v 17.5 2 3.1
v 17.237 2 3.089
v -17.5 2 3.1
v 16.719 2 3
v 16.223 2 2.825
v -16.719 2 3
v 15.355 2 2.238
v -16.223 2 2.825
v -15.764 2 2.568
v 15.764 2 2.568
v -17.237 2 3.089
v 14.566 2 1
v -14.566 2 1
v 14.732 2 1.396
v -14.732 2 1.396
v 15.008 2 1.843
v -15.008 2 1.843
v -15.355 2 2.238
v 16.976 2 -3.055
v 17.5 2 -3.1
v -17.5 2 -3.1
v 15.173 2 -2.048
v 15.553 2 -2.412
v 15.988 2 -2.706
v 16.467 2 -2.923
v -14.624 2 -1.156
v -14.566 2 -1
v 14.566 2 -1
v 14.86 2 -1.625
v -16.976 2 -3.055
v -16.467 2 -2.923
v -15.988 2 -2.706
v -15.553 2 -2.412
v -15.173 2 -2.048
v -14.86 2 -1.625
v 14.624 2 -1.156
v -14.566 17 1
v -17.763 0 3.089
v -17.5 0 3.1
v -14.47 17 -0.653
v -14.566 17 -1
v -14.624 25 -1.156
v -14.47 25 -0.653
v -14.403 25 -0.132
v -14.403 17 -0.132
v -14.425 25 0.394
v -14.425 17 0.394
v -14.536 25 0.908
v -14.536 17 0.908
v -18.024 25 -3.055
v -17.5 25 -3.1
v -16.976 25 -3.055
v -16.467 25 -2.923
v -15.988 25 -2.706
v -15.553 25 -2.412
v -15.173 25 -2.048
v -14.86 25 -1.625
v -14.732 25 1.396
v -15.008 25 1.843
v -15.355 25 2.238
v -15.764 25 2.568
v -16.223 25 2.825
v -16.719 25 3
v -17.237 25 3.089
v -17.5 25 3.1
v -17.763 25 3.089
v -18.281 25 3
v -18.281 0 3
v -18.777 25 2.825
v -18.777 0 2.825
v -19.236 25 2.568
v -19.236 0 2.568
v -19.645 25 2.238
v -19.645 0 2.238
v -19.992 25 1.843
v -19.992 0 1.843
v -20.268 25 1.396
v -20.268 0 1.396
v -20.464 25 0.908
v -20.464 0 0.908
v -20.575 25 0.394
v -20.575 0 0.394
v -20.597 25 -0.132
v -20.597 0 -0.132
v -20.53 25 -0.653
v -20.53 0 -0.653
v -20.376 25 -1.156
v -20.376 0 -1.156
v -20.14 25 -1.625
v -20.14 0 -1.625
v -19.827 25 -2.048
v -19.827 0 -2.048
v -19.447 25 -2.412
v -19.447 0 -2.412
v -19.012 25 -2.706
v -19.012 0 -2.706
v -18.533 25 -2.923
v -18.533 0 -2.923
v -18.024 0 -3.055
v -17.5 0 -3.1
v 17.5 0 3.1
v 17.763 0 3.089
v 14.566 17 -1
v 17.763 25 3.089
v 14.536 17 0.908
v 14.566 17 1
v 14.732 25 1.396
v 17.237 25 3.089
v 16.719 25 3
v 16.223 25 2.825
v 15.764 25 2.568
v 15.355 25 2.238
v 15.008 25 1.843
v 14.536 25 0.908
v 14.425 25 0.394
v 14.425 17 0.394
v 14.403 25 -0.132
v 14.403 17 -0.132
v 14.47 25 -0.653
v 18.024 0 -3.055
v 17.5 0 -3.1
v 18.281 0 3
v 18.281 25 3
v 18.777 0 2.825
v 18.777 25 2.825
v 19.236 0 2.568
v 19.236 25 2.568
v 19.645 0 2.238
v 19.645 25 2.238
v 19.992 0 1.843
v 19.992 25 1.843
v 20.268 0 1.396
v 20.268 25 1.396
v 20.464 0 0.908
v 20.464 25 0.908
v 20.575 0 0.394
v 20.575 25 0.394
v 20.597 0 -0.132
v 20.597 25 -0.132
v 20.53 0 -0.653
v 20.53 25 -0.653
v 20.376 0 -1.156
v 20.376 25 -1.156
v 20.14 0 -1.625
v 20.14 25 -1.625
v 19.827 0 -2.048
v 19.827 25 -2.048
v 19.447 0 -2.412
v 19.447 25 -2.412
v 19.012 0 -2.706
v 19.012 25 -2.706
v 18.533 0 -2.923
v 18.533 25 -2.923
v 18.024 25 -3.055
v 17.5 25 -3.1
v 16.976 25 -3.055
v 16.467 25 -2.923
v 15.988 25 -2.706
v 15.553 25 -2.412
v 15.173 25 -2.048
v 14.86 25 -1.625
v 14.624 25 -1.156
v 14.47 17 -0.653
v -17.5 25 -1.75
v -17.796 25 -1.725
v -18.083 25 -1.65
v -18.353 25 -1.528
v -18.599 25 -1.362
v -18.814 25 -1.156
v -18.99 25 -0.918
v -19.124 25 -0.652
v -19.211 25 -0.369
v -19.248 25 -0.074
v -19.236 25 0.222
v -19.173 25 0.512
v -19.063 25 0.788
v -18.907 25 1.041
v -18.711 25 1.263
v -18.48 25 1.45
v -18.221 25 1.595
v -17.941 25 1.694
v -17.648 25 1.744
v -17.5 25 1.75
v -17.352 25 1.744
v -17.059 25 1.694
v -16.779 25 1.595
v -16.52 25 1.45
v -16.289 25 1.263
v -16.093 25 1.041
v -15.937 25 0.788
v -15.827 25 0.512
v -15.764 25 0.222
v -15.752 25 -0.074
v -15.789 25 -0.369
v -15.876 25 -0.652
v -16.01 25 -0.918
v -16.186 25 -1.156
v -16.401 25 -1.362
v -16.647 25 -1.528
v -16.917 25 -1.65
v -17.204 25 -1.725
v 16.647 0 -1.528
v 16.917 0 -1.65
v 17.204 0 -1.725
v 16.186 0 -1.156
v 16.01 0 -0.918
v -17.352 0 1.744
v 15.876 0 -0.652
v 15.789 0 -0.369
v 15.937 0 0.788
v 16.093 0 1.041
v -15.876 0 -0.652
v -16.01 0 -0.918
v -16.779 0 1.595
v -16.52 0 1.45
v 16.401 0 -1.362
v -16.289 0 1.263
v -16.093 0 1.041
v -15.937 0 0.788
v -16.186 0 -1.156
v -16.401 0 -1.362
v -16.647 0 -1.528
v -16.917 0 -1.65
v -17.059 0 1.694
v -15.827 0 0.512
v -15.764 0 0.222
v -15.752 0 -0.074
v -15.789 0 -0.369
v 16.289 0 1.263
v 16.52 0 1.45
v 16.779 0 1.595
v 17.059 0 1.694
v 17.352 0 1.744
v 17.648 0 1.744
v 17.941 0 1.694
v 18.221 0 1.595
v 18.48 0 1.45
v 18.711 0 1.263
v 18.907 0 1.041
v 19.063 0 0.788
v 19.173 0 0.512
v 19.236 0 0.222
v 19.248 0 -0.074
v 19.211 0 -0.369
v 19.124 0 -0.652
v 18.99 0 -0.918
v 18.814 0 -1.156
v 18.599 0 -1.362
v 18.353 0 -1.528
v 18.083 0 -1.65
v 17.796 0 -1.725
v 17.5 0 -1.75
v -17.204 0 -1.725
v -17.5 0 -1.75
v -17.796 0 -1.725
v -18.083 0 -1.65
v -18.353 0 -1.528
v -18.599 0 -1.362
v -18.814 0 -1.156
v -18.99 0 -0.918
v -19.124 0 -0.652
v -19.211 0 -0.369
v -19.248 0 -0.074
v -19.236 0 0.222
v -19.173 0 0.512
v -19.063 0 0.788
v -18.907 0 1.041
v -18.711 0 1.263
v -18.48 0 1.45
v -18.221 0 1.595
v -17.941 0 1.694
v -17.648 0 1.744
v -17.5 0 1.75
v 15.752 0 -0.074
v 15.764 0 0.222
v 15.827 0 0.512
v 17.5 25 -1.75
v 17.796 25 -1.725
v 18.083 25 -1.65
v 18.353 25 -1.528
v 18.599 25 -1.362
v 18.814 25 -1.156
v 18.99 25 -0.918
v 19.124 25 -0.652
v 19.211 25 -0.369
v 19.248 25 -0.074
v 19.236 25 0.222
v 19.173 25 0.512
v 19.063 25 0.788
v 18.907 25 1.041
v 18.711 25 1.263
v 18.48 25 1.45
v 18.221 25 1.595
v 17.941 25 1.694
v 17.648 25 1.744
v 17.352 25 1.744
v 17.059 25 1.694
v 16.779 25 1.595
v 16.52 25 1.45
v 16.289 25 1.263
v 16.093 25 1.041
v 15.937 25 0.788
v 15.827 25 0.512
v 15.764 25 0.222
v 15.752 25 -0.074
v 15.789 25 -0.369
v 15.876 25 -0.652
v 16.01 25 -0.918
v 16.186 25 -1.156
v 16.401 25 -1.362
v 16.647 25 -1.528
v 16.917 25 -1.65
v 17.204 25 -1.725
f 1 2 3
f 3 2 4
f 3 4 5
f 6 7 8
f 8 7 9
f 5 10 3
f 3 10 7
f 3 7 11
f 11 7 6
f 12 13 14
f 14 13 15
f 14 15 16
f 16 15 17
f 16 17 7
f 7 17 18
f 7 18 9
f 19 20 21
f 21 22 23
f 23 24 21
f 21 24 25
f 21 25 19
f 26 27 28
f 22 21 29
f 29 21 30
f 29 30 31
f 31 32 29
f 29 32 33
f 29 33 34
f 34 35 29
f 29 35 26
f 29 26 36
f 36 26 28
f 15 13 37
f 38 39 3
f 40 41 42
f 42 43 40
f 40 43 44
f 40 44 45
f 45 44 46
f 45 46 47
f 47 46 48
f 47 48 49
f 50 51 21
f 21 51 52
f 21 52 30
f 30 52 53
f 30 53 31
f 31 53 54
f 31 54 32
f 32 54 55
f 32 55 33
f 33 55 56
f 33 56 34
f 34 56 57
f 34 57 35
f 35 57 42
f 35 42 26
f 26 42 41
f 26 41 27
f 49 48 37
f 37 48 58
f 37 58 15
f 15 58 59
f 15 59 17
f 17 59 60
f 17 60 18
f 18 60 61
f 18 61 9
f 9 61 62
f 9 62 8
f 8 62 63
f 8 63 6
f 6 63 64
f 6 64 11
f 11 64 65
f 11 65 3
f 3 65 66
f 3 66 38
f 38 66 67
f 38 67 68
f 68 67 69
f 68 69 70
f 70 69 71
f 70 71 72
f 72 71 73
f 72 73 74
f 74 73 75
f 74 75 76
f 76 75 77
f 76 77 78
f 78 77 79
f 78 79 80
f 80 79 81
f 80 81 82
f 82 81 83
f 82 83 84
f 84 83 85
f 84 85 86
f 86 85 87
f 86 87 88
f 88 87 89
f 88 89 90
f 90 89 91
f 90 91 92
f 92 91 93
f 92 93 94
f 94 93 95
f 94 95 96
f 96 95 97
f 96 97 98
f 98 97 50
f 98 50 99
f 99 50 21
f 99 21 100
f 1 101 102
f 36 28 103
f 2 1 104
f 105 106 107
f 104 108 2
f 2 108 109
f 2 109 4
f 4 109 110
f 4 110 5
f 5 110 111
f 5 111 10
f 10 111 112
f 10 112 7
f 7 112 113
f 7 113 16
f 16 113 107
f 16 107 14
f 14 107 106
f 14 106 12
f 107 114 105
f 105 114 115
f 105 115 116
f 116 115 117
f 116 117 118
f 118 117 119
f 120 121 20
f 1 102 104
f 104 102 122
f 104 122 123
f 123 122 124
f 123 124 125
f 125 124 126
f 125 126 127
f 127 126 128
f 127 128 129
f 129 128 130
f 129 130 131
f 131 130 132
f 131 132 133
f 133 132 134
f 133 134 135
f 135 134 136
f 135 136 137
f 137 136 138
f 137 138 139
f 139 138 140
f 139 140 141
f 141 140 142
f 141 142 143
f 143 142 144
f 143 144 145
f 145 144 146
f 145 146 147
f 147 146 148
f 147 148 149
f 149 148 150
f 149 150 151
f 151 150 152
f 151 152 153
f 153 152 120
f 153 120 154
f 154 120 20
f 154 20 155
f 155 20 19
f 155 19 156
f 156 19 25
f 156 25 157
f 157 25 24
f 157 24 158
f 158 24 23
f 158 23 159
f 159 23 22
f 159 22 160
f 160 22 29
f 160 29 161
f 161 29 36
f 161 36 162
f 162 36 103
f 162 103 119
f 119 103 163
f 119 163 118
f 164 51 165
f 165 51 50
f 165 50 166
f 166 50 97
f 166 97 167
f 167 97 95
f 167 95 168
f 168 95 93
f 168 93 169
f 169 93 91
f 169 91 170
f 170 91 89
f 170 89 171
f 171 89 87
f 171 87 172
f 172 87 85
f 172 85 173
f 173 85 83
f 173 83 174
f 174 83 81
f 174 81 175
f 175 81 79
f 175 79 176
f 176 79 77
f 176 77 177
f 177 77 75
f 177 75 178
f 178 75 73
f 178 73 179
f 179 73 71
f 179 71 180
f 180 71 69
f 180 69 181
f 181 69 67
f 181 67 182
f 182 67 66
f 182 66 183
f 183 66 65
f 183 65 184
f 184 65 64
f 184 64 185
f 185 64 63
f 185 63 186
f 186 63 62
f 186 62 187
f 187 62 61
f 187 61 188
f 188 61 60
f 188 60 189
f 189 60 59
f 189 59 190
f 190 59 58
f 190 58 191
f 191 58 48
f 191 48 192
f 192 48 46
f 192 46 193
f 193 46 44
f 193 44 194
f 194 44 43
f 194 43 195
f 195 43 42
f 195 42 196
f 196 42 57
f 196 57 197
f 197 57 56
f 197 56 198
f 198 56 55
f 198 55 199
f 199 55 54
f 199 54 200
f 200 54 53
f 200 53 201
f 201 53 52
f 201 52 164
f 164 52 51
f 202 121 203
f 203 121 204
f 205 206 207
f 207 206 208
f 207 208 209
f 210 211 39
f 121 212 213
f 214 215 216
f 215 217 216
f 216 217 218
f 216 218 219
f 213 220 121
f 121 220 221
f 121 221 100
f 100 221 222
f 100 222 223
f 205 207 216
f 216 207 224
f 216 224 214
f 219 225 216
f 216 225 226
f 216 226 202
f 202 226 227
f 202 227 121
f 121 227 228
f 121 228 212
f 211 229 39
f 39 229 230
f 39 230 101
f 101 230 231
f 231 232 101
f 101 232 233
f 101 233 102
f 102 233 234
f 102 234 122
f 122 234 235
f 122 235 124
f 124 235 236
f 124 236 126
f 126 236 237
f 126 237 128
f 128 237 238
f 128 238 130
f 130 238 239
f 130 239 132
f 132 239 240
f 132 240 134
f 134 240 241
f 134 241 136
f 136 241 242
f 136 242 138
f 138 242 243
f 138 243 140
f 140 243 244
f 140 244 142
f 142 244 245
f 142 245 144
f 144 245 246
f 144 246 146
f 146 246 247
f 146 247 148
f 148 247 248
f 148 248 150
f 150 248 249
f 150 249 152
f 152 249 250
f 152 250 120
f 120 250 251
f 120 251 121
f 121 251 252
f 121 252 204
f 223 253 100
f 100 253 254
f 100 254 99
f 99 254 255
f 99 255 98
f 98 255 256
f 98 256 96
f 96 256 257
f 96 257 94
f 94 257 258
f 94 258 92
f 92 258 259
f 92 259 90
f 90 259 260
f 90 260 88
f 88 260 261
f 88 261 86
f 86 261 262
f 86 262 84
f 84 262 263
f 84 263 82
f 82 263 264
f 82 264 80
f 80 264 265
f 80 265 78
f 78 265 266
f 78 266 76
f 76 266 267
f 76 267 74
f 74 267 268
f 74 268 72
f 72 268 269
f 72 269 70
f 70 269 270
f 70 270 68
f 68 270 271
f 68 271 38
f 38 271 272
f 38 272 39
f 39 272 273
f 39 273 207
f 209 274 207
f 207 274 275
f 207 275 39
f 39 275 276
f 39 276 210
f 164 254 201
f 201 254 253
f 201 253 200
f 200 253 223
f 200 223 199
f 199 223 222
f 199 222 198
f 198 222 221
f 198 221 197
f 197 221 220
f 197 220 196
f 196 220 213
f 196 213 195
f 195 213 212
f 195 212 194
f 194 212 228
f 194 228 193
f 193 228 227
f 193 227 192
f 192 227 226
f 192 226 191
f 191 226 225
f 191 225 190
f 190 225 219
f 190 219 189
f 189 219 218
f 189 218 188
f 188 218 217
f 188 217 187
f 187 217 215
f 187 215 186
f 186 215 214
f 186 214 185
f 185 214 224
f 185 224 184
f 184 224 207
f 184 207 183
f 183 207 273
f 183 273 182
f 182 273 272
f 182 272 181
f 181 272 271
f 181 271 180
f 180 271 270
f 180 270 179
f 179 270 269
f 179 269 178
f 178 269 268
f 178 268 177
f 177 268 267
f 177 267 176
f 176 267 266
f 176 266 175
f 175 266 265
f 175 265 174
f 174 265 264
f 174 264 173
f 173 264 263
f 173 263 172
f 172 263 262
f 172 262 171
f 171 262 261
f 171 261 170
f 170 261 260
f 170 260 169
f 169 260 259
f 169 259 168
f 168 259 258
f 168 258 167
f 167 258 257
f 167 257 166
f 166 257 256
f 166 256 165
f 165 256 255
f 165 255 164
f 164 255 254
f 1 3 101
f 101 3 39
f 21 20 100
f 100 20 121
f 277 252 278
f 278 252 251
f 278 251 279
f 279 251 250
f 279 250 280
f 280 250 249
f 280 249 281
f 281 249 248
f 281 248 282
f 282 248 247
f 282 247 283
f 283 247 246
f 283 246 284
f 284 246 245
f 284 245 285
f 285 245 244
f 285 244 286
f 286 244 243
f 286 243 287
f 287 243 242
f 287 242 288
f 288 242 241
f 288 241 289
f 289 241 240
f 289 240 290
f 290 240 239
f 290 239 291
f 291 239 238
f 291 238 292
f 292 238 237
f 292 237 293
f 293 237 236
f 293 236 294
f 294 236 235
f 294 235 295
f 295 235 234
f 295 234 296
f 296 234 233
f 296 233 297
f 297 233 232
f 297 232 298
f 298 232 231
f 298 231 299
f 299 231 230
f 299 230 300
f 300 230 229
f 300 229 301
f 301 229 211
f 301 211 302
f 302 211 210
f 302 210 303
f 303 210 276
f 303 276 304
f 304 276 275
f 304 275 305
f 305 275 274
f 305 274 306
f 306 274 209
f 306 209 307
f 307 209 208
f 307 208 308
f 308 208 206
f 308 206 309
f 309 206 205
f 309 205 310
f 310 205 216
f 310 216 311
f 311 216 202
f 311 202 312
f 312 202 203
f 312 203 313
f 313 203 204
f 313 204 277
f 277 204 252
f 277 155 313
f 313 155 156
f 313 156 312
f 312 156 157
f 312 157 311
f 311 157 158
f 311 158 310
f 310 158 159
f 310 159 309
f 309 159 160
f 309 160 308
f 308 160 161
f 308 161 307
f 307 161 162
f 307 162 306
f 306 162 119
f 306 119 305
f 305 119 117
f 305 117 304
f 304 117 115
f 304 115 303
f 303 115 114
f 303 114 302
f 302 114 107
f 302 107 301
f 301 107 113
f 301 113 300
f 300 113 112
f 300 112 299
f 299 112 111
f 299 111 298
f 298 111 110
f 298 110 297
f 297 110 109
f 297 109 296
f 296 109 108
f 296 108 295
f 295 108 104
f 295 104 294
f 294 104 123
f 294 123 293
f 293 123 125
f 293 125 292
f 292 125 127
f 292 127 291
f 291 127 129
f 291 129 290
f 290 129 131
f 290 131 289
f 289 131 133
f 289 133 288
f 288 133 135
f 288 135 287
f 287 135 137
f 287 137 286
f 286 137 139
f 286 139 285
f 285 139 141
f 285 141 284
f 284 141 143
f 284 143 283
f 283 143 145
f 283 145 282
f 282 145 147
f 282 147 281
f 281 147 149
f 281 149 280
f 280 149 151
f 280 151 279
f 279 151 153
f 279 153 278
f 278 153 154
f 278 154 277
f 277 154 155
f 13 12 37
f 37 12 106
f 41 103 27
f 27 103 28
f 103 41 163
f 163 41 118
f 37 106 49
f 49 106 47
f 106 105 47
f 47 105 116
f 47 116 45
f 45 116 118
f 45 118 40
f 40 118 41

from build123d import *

# Parameters (mm, degrees)
SKETCH_1_R        = 3.1
SKETCH_1_R_2      = 1.75
EXTRUDE_1_DEPTH   = 25
EXTRUDE_1_2_DEPTH = 25
SKETCH_2_R        = 1.75
EXTRUDE_2_DEPTH   = 2
SKETCH_3_W        = 30.176052102
SKETCH_3_H        = 2
EXTRUDE_3_DEPTH   = 15


with BuildPart() as part:
    # Эскиз1 → Бобышка-Вытянуть1 (new body)
    with BuildSketch(Plane(origin=(0, 0, 0), x_dir=(1, 0, 0), z_dir=(0, 1, 0))):
        with Locations((-17.5, 0)):
            Circle(SKETCH_1_R)
        with Locations((-17.5, 0)):
            Circle(SKETCH_1_R_2, mode=Mode.SUBTRACT)
    extrude(amount=EXTRUDE_1_DEPTH)



with BuildPart() as body_2:
    # Эскиз1 → Extrude 1 2 (new body)
    with BuildSketch(Plane(origin=(0, 0, 0), x_dir=(1, 0, 0), z_dir=(0, 1, 0))):
        with Locations((17.5, 0)):
            Circle(SKETCH_1_R)
        with Locations((17.5, 0)):
            Circle(SKETCH_1_R_2, mode=Mode.SUBTRACT)
    extrude(amount=EXTRUDE_1_2_DEPTH)


with BuildPart() as part_1:
    add(part.part)

    add(body_2.part)  # Бобышка-Вытянуть2 merges body 2
    # Эскиз2 → Бобышка-Вытянуть2 (add)
    with BuildSketch(Plane.XZ):
        with BuildLine():
            Line((-17.5, 3.1), (17.5, 3.1))
            ThreePointArc((17.5, 3.1), (20.6, 0), (17.5, -3.1))
            Line((17.5, -3.1), (-17.5, -3.1))
            ThreePointArc((-17.5, -3.1), (-20.6, 0), (-17.5, 3.1))
        make_face()
        with Locations((-17.5, 0)):
            Circle(SKETCH_2_R, mode=Mode.SUBTRACT)
        with Locations((17.5, 0)):
            Circle(SKETCH_2_R, mode=Mode.SUBTRACT)
    extrude(amount=-EXTRUDE_2_DEPTH)

    # Эскиз3 → Бобышка-Вытянуть3 (add)
    with BuildSketch(Plane(origin=(0, 2, 0), x_dir=(1, 0, 0), z_dir=(0, 1, 0))):
        Rectangle(SKETCH_3_W, SKETCH_3_H)
    extrude(amount=EXTRUDE_3_DEPTH)


solid = part_1.part
